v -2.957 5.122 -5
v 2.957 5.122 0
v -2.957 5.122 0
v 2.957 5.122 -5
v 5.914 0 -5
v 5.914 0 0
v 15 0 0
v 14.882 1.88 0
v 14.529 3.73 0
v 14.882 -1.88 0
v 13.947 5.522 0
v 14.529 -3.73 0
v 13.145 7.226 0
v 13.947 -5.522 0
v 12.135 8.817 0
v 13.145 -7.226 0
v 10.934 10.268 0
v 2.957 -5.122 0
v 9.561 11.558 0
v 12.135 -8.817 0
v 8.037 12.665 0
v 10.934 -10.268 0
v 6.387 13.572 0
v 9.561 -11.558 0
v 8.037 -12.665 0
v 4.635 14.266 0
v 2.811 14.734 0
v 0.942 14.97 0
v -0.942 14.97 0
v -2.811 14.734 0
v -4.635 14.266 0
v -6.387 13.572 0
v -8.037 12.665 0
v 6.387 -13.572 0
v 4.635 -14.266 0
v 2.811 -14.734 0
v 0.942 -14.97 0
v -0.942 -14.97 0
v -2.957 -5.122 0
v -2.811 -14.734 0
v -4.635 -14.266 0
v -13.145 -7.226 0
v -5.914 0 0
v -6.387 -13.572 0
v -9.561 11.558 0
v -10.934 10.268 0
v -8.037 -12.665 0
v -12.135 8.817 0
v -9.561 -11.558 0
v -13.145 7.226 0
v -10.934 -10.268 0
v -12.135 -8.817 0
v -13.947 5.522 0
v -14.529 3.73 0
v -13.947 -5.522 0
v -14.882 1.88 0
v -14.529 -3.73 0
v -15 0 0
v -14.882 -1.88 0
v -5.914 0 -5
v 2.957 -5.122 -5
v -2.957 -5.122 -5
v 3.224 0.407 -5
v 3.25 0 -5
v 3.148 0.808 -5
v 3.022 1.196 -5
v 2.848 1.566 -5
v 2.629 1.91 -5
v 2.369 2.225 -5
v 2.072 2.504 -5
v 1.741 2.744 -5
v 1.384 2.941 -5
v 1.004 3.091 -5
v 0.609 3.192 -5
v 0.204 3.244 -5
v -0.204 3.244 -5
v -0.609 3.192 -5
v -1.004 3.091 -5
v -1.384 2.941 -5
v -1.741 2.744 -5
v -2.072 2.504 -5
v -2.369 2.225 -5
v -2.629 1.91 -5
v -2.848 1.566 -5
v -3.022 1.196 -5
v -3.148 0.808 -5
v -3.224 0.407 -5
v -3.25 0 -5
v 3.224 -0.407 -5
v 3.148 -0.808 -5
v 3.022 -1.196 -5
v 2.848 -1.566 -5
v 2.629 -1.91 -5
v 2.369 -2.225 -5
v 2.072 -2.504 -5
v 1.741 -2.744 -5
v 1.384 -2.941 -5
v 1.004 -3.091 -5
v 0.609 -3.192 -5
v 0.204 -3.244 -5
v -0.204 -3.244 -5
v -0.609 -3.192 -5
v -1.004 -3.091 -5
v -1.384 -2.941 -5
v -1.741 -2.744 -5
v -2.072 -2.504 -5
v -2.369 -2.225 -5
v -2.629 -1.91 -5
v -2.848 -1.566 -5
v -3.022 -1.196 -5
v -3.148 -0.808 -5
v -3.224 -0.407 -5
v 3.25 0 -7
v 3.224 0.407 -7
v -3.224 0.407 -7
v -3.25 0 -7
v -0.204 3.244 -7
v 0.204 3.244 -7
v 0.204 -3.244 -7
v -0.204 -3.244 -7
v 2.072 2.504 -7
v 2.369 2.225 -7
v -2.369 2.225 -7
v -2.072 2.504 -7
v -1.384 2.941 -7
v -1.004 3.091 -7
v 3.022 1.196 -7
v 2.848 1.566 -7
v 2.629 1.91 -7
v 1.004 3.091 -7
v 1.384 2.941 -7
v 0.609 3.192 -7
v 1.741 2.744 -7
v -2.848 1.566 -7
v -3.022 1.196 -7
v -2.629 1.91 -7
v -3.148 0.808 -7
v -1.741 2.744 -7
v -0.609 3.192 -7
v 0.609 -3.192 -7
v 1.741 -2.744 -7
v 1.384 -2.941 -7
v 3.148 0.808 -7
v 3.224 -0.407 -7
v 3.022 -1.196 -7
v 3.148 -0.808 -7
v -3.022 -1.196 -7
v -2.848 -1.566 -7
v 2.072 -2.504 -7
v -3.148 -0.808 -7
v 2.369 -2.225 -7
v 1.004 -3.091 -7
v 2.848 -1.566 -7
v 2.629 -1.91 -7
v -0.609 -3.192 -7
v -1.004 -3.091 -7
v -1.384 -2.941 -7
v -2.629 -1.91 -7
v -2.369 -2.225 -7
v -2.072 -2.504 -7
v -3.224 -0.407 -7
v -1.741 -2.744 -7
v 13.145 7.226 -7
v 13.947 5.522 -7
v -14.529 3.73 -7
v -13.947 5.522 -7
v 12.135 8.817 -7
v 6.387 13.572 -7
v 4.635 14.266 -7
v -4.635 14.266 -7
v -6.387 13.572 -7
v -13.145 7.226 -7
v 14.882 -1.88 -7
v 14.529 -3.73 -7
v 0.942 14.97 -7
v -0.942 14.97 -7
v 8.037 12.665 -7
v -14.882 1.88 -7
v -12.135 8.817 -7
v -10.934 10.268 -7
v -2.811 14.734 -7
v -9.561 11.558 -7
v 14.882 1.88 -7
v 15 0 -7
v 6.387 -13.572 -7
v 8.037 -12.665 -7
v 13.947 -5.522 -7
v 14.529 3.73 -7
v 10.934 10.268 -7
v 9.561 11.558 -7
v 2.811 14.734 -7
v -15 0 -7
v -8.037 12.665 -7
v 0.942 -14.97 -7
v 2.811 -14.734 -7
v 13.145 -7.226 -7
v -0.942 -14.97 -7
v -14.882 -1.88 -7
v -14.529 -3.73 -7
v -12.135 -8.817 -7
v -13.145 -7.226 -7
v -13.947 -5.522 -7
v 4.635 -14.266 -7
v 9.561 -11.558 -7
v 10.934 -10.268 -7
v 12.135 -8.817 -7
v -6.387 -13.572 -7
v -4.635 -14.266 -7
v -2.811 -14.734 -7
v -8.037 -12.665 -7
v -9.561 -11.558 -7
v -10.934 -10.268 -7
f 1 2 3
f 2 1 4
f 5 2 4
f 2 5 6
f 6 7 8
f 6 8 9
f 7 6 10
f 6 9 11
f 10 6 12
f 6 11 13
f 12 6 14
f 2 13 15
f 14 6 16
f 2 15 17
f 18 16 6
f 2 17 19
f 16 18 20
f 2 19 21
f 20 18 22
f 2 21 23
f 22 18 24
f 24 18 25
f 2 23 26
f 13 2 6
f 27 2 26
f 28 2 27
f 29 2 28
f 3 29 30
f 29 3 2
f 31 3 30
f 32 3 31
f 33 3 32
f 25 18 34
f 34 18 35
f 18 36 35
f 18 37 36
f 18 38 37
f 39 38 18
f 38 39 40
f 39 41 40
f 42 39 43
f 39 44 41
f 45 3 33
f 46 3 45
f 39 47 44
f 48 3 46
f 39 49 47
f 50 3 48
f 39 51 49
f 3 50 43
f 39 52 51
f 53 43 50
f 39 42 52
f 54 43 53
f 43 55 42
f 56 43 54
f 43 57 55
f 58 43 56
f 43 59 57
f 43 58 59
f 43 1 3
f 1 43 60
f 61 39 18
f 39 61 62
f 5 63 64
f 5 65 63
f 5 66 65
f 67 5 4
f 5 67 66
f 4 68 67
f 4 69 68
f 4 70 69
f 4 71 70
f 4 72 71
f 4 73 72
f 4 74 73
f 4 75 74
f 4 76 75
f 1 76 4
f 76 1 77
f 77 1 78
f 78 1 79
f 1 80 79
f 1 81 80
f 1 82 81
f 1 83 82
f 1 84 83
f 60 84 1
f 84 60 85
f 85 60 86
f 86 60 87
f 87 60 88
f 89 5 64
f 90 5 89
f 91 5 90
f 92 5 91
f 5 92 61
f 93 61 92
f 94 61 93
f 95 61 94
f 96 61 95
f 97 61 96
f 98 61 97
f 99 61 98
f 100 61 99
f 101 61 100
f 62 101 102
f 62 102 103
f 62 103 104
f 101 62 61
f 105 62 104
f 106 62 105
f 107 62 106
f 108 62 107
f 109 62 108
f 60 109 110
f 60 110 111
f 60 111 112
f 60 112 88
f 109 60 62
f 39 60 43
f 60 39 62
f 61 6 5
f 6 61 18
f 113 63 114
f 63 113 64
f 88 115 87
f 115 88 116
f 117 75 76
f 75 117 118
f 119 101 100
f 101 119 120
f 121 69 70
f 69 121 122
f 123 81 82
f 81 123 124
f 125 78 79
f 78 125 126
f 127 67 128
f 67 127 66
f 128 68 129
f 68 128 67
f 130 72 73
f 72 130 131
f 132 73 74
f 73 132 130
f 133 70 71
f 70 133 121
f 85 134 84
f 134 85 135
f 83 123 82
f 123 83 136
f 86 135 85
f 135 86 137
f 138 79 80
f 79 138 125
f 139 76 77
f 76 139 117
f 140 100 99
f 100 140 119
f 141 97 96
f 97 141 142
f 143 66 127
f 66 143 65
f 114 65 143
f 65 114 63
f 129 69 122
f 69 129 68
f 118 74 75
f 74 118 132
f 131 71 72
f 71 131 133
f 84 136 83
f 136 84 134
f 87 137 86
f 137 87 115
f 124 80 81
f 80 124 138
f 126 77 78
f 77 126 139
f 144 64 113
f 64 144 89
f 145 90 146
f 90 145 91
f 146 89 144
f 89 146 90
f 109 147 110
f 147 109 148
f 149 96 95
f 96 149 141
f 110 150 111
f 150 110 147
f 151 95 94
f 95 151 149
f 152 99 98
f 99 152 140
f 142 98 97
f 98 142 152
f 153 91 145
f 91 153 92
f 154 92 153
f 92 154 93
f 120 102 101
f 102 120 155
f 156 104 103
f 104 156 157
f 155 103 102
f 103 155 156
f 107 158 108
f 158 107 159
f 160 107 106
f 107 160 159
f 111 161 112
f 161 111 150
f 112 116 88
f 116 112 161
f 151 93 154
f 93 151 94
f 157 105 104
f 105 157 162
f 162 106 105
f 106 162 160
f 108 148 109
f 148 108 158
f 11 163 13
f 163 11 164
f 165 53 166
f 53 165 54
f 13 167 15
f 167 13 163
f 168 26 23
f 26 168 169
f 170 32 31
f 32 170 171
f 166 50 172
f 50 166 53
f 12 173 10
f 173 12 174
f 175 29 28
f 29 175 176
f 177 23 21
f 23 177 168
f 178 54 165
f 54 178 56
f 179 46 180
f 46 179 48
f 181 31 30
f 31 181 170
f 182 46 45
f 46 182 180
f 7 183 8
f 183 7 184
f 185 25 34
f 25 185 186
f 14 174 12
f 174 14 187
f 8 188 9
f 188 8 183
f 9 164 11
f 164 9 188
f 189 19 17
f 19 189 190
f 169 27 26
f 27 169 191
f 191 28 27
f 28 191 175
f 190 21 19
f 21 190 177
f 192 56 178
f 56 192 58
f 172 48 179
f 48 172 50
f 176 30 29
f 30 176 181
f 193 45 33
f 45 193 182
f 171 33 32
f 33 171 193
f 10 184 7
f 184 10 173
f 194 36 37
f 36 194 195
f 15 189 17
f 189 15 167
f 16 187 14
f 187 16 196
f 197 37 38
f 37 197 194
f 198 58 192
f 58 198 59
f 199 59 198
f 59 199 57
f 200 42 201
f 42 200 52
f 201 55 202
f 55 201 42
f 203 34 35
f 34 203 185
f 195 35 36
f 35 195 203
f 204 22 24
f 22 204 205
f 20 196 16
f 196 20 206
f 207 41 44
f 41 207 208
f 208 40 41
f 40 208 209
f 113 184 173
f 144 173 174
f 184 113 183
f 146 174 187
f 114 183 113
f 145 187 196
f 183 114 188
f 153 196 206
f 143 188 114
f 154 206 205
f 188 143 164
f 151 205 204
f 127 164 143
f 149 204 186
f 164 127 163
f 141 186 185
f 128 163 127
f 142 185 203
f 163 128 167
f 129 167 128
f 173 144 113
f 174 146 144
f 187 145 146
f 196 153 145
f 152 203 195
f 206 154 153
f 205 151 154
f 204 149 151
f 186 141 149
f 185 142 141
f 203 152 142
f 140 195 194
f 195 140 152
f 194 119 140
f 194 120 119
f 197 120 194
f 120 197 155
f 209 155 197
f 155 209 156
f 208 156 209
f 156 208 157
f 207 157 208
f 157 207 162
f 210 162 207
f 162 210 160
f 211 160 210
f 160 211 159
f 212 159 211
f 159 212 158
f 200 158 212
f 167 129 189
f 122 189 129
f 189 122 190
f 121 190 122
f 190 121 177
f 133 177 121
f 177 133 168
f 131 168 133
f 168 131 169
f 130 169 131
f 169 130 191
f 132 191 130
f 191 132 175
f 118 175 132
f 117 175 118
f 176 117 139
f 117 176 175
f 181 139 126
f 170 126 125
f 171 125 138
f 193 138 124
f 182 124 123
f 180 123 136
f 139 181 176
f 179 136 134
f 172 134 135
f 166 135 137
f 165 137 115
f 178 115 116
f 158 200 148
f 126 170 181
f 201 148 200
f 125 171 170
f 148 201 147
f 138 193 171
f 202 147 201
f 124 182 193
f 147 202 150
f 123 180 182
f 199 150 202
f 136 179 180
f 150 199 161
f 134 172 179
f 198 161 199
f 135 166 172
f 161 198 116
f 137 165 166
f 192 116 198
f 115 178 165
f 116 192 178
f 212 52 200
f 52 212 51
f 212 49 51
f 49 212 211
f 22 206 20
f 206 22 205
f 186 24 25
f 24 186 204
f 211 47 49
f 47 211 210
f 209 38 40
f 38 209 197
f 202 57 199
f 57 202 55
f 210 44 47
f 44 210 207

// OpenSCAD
$fn = 50;

difference() {
	union() {
		translate(v = [0, 0, -7.0]) {
			cylinder(h = 7.0, r = 15.0);
		}
	}
	union() {
		translate(v = [0, 0, 0]) {
			rotate(a = [0, 0, 0]) {
				difference() {
					union() {
						translate(v = [0, 0, -5]) {
							linear_extrude(height = 5) {
								polygon(points = [[5.914249999999999, 0.0], [2.957125, 5.1218907443321156], [-2.9571249999999982, 5.1218907443321156], [-5.914249999999999, 7.242867331857232e-16], [-2.9571250000000022, -5.121890744332115], [2.9571249999999956, -5.121890744332118]]);
							}
						}
					}
					union();
				}
			}
		}
		#translate(v = [0, 0, -100.0]) {
			cylinder(h = 200, r = 3.25);
		}
	}
}
